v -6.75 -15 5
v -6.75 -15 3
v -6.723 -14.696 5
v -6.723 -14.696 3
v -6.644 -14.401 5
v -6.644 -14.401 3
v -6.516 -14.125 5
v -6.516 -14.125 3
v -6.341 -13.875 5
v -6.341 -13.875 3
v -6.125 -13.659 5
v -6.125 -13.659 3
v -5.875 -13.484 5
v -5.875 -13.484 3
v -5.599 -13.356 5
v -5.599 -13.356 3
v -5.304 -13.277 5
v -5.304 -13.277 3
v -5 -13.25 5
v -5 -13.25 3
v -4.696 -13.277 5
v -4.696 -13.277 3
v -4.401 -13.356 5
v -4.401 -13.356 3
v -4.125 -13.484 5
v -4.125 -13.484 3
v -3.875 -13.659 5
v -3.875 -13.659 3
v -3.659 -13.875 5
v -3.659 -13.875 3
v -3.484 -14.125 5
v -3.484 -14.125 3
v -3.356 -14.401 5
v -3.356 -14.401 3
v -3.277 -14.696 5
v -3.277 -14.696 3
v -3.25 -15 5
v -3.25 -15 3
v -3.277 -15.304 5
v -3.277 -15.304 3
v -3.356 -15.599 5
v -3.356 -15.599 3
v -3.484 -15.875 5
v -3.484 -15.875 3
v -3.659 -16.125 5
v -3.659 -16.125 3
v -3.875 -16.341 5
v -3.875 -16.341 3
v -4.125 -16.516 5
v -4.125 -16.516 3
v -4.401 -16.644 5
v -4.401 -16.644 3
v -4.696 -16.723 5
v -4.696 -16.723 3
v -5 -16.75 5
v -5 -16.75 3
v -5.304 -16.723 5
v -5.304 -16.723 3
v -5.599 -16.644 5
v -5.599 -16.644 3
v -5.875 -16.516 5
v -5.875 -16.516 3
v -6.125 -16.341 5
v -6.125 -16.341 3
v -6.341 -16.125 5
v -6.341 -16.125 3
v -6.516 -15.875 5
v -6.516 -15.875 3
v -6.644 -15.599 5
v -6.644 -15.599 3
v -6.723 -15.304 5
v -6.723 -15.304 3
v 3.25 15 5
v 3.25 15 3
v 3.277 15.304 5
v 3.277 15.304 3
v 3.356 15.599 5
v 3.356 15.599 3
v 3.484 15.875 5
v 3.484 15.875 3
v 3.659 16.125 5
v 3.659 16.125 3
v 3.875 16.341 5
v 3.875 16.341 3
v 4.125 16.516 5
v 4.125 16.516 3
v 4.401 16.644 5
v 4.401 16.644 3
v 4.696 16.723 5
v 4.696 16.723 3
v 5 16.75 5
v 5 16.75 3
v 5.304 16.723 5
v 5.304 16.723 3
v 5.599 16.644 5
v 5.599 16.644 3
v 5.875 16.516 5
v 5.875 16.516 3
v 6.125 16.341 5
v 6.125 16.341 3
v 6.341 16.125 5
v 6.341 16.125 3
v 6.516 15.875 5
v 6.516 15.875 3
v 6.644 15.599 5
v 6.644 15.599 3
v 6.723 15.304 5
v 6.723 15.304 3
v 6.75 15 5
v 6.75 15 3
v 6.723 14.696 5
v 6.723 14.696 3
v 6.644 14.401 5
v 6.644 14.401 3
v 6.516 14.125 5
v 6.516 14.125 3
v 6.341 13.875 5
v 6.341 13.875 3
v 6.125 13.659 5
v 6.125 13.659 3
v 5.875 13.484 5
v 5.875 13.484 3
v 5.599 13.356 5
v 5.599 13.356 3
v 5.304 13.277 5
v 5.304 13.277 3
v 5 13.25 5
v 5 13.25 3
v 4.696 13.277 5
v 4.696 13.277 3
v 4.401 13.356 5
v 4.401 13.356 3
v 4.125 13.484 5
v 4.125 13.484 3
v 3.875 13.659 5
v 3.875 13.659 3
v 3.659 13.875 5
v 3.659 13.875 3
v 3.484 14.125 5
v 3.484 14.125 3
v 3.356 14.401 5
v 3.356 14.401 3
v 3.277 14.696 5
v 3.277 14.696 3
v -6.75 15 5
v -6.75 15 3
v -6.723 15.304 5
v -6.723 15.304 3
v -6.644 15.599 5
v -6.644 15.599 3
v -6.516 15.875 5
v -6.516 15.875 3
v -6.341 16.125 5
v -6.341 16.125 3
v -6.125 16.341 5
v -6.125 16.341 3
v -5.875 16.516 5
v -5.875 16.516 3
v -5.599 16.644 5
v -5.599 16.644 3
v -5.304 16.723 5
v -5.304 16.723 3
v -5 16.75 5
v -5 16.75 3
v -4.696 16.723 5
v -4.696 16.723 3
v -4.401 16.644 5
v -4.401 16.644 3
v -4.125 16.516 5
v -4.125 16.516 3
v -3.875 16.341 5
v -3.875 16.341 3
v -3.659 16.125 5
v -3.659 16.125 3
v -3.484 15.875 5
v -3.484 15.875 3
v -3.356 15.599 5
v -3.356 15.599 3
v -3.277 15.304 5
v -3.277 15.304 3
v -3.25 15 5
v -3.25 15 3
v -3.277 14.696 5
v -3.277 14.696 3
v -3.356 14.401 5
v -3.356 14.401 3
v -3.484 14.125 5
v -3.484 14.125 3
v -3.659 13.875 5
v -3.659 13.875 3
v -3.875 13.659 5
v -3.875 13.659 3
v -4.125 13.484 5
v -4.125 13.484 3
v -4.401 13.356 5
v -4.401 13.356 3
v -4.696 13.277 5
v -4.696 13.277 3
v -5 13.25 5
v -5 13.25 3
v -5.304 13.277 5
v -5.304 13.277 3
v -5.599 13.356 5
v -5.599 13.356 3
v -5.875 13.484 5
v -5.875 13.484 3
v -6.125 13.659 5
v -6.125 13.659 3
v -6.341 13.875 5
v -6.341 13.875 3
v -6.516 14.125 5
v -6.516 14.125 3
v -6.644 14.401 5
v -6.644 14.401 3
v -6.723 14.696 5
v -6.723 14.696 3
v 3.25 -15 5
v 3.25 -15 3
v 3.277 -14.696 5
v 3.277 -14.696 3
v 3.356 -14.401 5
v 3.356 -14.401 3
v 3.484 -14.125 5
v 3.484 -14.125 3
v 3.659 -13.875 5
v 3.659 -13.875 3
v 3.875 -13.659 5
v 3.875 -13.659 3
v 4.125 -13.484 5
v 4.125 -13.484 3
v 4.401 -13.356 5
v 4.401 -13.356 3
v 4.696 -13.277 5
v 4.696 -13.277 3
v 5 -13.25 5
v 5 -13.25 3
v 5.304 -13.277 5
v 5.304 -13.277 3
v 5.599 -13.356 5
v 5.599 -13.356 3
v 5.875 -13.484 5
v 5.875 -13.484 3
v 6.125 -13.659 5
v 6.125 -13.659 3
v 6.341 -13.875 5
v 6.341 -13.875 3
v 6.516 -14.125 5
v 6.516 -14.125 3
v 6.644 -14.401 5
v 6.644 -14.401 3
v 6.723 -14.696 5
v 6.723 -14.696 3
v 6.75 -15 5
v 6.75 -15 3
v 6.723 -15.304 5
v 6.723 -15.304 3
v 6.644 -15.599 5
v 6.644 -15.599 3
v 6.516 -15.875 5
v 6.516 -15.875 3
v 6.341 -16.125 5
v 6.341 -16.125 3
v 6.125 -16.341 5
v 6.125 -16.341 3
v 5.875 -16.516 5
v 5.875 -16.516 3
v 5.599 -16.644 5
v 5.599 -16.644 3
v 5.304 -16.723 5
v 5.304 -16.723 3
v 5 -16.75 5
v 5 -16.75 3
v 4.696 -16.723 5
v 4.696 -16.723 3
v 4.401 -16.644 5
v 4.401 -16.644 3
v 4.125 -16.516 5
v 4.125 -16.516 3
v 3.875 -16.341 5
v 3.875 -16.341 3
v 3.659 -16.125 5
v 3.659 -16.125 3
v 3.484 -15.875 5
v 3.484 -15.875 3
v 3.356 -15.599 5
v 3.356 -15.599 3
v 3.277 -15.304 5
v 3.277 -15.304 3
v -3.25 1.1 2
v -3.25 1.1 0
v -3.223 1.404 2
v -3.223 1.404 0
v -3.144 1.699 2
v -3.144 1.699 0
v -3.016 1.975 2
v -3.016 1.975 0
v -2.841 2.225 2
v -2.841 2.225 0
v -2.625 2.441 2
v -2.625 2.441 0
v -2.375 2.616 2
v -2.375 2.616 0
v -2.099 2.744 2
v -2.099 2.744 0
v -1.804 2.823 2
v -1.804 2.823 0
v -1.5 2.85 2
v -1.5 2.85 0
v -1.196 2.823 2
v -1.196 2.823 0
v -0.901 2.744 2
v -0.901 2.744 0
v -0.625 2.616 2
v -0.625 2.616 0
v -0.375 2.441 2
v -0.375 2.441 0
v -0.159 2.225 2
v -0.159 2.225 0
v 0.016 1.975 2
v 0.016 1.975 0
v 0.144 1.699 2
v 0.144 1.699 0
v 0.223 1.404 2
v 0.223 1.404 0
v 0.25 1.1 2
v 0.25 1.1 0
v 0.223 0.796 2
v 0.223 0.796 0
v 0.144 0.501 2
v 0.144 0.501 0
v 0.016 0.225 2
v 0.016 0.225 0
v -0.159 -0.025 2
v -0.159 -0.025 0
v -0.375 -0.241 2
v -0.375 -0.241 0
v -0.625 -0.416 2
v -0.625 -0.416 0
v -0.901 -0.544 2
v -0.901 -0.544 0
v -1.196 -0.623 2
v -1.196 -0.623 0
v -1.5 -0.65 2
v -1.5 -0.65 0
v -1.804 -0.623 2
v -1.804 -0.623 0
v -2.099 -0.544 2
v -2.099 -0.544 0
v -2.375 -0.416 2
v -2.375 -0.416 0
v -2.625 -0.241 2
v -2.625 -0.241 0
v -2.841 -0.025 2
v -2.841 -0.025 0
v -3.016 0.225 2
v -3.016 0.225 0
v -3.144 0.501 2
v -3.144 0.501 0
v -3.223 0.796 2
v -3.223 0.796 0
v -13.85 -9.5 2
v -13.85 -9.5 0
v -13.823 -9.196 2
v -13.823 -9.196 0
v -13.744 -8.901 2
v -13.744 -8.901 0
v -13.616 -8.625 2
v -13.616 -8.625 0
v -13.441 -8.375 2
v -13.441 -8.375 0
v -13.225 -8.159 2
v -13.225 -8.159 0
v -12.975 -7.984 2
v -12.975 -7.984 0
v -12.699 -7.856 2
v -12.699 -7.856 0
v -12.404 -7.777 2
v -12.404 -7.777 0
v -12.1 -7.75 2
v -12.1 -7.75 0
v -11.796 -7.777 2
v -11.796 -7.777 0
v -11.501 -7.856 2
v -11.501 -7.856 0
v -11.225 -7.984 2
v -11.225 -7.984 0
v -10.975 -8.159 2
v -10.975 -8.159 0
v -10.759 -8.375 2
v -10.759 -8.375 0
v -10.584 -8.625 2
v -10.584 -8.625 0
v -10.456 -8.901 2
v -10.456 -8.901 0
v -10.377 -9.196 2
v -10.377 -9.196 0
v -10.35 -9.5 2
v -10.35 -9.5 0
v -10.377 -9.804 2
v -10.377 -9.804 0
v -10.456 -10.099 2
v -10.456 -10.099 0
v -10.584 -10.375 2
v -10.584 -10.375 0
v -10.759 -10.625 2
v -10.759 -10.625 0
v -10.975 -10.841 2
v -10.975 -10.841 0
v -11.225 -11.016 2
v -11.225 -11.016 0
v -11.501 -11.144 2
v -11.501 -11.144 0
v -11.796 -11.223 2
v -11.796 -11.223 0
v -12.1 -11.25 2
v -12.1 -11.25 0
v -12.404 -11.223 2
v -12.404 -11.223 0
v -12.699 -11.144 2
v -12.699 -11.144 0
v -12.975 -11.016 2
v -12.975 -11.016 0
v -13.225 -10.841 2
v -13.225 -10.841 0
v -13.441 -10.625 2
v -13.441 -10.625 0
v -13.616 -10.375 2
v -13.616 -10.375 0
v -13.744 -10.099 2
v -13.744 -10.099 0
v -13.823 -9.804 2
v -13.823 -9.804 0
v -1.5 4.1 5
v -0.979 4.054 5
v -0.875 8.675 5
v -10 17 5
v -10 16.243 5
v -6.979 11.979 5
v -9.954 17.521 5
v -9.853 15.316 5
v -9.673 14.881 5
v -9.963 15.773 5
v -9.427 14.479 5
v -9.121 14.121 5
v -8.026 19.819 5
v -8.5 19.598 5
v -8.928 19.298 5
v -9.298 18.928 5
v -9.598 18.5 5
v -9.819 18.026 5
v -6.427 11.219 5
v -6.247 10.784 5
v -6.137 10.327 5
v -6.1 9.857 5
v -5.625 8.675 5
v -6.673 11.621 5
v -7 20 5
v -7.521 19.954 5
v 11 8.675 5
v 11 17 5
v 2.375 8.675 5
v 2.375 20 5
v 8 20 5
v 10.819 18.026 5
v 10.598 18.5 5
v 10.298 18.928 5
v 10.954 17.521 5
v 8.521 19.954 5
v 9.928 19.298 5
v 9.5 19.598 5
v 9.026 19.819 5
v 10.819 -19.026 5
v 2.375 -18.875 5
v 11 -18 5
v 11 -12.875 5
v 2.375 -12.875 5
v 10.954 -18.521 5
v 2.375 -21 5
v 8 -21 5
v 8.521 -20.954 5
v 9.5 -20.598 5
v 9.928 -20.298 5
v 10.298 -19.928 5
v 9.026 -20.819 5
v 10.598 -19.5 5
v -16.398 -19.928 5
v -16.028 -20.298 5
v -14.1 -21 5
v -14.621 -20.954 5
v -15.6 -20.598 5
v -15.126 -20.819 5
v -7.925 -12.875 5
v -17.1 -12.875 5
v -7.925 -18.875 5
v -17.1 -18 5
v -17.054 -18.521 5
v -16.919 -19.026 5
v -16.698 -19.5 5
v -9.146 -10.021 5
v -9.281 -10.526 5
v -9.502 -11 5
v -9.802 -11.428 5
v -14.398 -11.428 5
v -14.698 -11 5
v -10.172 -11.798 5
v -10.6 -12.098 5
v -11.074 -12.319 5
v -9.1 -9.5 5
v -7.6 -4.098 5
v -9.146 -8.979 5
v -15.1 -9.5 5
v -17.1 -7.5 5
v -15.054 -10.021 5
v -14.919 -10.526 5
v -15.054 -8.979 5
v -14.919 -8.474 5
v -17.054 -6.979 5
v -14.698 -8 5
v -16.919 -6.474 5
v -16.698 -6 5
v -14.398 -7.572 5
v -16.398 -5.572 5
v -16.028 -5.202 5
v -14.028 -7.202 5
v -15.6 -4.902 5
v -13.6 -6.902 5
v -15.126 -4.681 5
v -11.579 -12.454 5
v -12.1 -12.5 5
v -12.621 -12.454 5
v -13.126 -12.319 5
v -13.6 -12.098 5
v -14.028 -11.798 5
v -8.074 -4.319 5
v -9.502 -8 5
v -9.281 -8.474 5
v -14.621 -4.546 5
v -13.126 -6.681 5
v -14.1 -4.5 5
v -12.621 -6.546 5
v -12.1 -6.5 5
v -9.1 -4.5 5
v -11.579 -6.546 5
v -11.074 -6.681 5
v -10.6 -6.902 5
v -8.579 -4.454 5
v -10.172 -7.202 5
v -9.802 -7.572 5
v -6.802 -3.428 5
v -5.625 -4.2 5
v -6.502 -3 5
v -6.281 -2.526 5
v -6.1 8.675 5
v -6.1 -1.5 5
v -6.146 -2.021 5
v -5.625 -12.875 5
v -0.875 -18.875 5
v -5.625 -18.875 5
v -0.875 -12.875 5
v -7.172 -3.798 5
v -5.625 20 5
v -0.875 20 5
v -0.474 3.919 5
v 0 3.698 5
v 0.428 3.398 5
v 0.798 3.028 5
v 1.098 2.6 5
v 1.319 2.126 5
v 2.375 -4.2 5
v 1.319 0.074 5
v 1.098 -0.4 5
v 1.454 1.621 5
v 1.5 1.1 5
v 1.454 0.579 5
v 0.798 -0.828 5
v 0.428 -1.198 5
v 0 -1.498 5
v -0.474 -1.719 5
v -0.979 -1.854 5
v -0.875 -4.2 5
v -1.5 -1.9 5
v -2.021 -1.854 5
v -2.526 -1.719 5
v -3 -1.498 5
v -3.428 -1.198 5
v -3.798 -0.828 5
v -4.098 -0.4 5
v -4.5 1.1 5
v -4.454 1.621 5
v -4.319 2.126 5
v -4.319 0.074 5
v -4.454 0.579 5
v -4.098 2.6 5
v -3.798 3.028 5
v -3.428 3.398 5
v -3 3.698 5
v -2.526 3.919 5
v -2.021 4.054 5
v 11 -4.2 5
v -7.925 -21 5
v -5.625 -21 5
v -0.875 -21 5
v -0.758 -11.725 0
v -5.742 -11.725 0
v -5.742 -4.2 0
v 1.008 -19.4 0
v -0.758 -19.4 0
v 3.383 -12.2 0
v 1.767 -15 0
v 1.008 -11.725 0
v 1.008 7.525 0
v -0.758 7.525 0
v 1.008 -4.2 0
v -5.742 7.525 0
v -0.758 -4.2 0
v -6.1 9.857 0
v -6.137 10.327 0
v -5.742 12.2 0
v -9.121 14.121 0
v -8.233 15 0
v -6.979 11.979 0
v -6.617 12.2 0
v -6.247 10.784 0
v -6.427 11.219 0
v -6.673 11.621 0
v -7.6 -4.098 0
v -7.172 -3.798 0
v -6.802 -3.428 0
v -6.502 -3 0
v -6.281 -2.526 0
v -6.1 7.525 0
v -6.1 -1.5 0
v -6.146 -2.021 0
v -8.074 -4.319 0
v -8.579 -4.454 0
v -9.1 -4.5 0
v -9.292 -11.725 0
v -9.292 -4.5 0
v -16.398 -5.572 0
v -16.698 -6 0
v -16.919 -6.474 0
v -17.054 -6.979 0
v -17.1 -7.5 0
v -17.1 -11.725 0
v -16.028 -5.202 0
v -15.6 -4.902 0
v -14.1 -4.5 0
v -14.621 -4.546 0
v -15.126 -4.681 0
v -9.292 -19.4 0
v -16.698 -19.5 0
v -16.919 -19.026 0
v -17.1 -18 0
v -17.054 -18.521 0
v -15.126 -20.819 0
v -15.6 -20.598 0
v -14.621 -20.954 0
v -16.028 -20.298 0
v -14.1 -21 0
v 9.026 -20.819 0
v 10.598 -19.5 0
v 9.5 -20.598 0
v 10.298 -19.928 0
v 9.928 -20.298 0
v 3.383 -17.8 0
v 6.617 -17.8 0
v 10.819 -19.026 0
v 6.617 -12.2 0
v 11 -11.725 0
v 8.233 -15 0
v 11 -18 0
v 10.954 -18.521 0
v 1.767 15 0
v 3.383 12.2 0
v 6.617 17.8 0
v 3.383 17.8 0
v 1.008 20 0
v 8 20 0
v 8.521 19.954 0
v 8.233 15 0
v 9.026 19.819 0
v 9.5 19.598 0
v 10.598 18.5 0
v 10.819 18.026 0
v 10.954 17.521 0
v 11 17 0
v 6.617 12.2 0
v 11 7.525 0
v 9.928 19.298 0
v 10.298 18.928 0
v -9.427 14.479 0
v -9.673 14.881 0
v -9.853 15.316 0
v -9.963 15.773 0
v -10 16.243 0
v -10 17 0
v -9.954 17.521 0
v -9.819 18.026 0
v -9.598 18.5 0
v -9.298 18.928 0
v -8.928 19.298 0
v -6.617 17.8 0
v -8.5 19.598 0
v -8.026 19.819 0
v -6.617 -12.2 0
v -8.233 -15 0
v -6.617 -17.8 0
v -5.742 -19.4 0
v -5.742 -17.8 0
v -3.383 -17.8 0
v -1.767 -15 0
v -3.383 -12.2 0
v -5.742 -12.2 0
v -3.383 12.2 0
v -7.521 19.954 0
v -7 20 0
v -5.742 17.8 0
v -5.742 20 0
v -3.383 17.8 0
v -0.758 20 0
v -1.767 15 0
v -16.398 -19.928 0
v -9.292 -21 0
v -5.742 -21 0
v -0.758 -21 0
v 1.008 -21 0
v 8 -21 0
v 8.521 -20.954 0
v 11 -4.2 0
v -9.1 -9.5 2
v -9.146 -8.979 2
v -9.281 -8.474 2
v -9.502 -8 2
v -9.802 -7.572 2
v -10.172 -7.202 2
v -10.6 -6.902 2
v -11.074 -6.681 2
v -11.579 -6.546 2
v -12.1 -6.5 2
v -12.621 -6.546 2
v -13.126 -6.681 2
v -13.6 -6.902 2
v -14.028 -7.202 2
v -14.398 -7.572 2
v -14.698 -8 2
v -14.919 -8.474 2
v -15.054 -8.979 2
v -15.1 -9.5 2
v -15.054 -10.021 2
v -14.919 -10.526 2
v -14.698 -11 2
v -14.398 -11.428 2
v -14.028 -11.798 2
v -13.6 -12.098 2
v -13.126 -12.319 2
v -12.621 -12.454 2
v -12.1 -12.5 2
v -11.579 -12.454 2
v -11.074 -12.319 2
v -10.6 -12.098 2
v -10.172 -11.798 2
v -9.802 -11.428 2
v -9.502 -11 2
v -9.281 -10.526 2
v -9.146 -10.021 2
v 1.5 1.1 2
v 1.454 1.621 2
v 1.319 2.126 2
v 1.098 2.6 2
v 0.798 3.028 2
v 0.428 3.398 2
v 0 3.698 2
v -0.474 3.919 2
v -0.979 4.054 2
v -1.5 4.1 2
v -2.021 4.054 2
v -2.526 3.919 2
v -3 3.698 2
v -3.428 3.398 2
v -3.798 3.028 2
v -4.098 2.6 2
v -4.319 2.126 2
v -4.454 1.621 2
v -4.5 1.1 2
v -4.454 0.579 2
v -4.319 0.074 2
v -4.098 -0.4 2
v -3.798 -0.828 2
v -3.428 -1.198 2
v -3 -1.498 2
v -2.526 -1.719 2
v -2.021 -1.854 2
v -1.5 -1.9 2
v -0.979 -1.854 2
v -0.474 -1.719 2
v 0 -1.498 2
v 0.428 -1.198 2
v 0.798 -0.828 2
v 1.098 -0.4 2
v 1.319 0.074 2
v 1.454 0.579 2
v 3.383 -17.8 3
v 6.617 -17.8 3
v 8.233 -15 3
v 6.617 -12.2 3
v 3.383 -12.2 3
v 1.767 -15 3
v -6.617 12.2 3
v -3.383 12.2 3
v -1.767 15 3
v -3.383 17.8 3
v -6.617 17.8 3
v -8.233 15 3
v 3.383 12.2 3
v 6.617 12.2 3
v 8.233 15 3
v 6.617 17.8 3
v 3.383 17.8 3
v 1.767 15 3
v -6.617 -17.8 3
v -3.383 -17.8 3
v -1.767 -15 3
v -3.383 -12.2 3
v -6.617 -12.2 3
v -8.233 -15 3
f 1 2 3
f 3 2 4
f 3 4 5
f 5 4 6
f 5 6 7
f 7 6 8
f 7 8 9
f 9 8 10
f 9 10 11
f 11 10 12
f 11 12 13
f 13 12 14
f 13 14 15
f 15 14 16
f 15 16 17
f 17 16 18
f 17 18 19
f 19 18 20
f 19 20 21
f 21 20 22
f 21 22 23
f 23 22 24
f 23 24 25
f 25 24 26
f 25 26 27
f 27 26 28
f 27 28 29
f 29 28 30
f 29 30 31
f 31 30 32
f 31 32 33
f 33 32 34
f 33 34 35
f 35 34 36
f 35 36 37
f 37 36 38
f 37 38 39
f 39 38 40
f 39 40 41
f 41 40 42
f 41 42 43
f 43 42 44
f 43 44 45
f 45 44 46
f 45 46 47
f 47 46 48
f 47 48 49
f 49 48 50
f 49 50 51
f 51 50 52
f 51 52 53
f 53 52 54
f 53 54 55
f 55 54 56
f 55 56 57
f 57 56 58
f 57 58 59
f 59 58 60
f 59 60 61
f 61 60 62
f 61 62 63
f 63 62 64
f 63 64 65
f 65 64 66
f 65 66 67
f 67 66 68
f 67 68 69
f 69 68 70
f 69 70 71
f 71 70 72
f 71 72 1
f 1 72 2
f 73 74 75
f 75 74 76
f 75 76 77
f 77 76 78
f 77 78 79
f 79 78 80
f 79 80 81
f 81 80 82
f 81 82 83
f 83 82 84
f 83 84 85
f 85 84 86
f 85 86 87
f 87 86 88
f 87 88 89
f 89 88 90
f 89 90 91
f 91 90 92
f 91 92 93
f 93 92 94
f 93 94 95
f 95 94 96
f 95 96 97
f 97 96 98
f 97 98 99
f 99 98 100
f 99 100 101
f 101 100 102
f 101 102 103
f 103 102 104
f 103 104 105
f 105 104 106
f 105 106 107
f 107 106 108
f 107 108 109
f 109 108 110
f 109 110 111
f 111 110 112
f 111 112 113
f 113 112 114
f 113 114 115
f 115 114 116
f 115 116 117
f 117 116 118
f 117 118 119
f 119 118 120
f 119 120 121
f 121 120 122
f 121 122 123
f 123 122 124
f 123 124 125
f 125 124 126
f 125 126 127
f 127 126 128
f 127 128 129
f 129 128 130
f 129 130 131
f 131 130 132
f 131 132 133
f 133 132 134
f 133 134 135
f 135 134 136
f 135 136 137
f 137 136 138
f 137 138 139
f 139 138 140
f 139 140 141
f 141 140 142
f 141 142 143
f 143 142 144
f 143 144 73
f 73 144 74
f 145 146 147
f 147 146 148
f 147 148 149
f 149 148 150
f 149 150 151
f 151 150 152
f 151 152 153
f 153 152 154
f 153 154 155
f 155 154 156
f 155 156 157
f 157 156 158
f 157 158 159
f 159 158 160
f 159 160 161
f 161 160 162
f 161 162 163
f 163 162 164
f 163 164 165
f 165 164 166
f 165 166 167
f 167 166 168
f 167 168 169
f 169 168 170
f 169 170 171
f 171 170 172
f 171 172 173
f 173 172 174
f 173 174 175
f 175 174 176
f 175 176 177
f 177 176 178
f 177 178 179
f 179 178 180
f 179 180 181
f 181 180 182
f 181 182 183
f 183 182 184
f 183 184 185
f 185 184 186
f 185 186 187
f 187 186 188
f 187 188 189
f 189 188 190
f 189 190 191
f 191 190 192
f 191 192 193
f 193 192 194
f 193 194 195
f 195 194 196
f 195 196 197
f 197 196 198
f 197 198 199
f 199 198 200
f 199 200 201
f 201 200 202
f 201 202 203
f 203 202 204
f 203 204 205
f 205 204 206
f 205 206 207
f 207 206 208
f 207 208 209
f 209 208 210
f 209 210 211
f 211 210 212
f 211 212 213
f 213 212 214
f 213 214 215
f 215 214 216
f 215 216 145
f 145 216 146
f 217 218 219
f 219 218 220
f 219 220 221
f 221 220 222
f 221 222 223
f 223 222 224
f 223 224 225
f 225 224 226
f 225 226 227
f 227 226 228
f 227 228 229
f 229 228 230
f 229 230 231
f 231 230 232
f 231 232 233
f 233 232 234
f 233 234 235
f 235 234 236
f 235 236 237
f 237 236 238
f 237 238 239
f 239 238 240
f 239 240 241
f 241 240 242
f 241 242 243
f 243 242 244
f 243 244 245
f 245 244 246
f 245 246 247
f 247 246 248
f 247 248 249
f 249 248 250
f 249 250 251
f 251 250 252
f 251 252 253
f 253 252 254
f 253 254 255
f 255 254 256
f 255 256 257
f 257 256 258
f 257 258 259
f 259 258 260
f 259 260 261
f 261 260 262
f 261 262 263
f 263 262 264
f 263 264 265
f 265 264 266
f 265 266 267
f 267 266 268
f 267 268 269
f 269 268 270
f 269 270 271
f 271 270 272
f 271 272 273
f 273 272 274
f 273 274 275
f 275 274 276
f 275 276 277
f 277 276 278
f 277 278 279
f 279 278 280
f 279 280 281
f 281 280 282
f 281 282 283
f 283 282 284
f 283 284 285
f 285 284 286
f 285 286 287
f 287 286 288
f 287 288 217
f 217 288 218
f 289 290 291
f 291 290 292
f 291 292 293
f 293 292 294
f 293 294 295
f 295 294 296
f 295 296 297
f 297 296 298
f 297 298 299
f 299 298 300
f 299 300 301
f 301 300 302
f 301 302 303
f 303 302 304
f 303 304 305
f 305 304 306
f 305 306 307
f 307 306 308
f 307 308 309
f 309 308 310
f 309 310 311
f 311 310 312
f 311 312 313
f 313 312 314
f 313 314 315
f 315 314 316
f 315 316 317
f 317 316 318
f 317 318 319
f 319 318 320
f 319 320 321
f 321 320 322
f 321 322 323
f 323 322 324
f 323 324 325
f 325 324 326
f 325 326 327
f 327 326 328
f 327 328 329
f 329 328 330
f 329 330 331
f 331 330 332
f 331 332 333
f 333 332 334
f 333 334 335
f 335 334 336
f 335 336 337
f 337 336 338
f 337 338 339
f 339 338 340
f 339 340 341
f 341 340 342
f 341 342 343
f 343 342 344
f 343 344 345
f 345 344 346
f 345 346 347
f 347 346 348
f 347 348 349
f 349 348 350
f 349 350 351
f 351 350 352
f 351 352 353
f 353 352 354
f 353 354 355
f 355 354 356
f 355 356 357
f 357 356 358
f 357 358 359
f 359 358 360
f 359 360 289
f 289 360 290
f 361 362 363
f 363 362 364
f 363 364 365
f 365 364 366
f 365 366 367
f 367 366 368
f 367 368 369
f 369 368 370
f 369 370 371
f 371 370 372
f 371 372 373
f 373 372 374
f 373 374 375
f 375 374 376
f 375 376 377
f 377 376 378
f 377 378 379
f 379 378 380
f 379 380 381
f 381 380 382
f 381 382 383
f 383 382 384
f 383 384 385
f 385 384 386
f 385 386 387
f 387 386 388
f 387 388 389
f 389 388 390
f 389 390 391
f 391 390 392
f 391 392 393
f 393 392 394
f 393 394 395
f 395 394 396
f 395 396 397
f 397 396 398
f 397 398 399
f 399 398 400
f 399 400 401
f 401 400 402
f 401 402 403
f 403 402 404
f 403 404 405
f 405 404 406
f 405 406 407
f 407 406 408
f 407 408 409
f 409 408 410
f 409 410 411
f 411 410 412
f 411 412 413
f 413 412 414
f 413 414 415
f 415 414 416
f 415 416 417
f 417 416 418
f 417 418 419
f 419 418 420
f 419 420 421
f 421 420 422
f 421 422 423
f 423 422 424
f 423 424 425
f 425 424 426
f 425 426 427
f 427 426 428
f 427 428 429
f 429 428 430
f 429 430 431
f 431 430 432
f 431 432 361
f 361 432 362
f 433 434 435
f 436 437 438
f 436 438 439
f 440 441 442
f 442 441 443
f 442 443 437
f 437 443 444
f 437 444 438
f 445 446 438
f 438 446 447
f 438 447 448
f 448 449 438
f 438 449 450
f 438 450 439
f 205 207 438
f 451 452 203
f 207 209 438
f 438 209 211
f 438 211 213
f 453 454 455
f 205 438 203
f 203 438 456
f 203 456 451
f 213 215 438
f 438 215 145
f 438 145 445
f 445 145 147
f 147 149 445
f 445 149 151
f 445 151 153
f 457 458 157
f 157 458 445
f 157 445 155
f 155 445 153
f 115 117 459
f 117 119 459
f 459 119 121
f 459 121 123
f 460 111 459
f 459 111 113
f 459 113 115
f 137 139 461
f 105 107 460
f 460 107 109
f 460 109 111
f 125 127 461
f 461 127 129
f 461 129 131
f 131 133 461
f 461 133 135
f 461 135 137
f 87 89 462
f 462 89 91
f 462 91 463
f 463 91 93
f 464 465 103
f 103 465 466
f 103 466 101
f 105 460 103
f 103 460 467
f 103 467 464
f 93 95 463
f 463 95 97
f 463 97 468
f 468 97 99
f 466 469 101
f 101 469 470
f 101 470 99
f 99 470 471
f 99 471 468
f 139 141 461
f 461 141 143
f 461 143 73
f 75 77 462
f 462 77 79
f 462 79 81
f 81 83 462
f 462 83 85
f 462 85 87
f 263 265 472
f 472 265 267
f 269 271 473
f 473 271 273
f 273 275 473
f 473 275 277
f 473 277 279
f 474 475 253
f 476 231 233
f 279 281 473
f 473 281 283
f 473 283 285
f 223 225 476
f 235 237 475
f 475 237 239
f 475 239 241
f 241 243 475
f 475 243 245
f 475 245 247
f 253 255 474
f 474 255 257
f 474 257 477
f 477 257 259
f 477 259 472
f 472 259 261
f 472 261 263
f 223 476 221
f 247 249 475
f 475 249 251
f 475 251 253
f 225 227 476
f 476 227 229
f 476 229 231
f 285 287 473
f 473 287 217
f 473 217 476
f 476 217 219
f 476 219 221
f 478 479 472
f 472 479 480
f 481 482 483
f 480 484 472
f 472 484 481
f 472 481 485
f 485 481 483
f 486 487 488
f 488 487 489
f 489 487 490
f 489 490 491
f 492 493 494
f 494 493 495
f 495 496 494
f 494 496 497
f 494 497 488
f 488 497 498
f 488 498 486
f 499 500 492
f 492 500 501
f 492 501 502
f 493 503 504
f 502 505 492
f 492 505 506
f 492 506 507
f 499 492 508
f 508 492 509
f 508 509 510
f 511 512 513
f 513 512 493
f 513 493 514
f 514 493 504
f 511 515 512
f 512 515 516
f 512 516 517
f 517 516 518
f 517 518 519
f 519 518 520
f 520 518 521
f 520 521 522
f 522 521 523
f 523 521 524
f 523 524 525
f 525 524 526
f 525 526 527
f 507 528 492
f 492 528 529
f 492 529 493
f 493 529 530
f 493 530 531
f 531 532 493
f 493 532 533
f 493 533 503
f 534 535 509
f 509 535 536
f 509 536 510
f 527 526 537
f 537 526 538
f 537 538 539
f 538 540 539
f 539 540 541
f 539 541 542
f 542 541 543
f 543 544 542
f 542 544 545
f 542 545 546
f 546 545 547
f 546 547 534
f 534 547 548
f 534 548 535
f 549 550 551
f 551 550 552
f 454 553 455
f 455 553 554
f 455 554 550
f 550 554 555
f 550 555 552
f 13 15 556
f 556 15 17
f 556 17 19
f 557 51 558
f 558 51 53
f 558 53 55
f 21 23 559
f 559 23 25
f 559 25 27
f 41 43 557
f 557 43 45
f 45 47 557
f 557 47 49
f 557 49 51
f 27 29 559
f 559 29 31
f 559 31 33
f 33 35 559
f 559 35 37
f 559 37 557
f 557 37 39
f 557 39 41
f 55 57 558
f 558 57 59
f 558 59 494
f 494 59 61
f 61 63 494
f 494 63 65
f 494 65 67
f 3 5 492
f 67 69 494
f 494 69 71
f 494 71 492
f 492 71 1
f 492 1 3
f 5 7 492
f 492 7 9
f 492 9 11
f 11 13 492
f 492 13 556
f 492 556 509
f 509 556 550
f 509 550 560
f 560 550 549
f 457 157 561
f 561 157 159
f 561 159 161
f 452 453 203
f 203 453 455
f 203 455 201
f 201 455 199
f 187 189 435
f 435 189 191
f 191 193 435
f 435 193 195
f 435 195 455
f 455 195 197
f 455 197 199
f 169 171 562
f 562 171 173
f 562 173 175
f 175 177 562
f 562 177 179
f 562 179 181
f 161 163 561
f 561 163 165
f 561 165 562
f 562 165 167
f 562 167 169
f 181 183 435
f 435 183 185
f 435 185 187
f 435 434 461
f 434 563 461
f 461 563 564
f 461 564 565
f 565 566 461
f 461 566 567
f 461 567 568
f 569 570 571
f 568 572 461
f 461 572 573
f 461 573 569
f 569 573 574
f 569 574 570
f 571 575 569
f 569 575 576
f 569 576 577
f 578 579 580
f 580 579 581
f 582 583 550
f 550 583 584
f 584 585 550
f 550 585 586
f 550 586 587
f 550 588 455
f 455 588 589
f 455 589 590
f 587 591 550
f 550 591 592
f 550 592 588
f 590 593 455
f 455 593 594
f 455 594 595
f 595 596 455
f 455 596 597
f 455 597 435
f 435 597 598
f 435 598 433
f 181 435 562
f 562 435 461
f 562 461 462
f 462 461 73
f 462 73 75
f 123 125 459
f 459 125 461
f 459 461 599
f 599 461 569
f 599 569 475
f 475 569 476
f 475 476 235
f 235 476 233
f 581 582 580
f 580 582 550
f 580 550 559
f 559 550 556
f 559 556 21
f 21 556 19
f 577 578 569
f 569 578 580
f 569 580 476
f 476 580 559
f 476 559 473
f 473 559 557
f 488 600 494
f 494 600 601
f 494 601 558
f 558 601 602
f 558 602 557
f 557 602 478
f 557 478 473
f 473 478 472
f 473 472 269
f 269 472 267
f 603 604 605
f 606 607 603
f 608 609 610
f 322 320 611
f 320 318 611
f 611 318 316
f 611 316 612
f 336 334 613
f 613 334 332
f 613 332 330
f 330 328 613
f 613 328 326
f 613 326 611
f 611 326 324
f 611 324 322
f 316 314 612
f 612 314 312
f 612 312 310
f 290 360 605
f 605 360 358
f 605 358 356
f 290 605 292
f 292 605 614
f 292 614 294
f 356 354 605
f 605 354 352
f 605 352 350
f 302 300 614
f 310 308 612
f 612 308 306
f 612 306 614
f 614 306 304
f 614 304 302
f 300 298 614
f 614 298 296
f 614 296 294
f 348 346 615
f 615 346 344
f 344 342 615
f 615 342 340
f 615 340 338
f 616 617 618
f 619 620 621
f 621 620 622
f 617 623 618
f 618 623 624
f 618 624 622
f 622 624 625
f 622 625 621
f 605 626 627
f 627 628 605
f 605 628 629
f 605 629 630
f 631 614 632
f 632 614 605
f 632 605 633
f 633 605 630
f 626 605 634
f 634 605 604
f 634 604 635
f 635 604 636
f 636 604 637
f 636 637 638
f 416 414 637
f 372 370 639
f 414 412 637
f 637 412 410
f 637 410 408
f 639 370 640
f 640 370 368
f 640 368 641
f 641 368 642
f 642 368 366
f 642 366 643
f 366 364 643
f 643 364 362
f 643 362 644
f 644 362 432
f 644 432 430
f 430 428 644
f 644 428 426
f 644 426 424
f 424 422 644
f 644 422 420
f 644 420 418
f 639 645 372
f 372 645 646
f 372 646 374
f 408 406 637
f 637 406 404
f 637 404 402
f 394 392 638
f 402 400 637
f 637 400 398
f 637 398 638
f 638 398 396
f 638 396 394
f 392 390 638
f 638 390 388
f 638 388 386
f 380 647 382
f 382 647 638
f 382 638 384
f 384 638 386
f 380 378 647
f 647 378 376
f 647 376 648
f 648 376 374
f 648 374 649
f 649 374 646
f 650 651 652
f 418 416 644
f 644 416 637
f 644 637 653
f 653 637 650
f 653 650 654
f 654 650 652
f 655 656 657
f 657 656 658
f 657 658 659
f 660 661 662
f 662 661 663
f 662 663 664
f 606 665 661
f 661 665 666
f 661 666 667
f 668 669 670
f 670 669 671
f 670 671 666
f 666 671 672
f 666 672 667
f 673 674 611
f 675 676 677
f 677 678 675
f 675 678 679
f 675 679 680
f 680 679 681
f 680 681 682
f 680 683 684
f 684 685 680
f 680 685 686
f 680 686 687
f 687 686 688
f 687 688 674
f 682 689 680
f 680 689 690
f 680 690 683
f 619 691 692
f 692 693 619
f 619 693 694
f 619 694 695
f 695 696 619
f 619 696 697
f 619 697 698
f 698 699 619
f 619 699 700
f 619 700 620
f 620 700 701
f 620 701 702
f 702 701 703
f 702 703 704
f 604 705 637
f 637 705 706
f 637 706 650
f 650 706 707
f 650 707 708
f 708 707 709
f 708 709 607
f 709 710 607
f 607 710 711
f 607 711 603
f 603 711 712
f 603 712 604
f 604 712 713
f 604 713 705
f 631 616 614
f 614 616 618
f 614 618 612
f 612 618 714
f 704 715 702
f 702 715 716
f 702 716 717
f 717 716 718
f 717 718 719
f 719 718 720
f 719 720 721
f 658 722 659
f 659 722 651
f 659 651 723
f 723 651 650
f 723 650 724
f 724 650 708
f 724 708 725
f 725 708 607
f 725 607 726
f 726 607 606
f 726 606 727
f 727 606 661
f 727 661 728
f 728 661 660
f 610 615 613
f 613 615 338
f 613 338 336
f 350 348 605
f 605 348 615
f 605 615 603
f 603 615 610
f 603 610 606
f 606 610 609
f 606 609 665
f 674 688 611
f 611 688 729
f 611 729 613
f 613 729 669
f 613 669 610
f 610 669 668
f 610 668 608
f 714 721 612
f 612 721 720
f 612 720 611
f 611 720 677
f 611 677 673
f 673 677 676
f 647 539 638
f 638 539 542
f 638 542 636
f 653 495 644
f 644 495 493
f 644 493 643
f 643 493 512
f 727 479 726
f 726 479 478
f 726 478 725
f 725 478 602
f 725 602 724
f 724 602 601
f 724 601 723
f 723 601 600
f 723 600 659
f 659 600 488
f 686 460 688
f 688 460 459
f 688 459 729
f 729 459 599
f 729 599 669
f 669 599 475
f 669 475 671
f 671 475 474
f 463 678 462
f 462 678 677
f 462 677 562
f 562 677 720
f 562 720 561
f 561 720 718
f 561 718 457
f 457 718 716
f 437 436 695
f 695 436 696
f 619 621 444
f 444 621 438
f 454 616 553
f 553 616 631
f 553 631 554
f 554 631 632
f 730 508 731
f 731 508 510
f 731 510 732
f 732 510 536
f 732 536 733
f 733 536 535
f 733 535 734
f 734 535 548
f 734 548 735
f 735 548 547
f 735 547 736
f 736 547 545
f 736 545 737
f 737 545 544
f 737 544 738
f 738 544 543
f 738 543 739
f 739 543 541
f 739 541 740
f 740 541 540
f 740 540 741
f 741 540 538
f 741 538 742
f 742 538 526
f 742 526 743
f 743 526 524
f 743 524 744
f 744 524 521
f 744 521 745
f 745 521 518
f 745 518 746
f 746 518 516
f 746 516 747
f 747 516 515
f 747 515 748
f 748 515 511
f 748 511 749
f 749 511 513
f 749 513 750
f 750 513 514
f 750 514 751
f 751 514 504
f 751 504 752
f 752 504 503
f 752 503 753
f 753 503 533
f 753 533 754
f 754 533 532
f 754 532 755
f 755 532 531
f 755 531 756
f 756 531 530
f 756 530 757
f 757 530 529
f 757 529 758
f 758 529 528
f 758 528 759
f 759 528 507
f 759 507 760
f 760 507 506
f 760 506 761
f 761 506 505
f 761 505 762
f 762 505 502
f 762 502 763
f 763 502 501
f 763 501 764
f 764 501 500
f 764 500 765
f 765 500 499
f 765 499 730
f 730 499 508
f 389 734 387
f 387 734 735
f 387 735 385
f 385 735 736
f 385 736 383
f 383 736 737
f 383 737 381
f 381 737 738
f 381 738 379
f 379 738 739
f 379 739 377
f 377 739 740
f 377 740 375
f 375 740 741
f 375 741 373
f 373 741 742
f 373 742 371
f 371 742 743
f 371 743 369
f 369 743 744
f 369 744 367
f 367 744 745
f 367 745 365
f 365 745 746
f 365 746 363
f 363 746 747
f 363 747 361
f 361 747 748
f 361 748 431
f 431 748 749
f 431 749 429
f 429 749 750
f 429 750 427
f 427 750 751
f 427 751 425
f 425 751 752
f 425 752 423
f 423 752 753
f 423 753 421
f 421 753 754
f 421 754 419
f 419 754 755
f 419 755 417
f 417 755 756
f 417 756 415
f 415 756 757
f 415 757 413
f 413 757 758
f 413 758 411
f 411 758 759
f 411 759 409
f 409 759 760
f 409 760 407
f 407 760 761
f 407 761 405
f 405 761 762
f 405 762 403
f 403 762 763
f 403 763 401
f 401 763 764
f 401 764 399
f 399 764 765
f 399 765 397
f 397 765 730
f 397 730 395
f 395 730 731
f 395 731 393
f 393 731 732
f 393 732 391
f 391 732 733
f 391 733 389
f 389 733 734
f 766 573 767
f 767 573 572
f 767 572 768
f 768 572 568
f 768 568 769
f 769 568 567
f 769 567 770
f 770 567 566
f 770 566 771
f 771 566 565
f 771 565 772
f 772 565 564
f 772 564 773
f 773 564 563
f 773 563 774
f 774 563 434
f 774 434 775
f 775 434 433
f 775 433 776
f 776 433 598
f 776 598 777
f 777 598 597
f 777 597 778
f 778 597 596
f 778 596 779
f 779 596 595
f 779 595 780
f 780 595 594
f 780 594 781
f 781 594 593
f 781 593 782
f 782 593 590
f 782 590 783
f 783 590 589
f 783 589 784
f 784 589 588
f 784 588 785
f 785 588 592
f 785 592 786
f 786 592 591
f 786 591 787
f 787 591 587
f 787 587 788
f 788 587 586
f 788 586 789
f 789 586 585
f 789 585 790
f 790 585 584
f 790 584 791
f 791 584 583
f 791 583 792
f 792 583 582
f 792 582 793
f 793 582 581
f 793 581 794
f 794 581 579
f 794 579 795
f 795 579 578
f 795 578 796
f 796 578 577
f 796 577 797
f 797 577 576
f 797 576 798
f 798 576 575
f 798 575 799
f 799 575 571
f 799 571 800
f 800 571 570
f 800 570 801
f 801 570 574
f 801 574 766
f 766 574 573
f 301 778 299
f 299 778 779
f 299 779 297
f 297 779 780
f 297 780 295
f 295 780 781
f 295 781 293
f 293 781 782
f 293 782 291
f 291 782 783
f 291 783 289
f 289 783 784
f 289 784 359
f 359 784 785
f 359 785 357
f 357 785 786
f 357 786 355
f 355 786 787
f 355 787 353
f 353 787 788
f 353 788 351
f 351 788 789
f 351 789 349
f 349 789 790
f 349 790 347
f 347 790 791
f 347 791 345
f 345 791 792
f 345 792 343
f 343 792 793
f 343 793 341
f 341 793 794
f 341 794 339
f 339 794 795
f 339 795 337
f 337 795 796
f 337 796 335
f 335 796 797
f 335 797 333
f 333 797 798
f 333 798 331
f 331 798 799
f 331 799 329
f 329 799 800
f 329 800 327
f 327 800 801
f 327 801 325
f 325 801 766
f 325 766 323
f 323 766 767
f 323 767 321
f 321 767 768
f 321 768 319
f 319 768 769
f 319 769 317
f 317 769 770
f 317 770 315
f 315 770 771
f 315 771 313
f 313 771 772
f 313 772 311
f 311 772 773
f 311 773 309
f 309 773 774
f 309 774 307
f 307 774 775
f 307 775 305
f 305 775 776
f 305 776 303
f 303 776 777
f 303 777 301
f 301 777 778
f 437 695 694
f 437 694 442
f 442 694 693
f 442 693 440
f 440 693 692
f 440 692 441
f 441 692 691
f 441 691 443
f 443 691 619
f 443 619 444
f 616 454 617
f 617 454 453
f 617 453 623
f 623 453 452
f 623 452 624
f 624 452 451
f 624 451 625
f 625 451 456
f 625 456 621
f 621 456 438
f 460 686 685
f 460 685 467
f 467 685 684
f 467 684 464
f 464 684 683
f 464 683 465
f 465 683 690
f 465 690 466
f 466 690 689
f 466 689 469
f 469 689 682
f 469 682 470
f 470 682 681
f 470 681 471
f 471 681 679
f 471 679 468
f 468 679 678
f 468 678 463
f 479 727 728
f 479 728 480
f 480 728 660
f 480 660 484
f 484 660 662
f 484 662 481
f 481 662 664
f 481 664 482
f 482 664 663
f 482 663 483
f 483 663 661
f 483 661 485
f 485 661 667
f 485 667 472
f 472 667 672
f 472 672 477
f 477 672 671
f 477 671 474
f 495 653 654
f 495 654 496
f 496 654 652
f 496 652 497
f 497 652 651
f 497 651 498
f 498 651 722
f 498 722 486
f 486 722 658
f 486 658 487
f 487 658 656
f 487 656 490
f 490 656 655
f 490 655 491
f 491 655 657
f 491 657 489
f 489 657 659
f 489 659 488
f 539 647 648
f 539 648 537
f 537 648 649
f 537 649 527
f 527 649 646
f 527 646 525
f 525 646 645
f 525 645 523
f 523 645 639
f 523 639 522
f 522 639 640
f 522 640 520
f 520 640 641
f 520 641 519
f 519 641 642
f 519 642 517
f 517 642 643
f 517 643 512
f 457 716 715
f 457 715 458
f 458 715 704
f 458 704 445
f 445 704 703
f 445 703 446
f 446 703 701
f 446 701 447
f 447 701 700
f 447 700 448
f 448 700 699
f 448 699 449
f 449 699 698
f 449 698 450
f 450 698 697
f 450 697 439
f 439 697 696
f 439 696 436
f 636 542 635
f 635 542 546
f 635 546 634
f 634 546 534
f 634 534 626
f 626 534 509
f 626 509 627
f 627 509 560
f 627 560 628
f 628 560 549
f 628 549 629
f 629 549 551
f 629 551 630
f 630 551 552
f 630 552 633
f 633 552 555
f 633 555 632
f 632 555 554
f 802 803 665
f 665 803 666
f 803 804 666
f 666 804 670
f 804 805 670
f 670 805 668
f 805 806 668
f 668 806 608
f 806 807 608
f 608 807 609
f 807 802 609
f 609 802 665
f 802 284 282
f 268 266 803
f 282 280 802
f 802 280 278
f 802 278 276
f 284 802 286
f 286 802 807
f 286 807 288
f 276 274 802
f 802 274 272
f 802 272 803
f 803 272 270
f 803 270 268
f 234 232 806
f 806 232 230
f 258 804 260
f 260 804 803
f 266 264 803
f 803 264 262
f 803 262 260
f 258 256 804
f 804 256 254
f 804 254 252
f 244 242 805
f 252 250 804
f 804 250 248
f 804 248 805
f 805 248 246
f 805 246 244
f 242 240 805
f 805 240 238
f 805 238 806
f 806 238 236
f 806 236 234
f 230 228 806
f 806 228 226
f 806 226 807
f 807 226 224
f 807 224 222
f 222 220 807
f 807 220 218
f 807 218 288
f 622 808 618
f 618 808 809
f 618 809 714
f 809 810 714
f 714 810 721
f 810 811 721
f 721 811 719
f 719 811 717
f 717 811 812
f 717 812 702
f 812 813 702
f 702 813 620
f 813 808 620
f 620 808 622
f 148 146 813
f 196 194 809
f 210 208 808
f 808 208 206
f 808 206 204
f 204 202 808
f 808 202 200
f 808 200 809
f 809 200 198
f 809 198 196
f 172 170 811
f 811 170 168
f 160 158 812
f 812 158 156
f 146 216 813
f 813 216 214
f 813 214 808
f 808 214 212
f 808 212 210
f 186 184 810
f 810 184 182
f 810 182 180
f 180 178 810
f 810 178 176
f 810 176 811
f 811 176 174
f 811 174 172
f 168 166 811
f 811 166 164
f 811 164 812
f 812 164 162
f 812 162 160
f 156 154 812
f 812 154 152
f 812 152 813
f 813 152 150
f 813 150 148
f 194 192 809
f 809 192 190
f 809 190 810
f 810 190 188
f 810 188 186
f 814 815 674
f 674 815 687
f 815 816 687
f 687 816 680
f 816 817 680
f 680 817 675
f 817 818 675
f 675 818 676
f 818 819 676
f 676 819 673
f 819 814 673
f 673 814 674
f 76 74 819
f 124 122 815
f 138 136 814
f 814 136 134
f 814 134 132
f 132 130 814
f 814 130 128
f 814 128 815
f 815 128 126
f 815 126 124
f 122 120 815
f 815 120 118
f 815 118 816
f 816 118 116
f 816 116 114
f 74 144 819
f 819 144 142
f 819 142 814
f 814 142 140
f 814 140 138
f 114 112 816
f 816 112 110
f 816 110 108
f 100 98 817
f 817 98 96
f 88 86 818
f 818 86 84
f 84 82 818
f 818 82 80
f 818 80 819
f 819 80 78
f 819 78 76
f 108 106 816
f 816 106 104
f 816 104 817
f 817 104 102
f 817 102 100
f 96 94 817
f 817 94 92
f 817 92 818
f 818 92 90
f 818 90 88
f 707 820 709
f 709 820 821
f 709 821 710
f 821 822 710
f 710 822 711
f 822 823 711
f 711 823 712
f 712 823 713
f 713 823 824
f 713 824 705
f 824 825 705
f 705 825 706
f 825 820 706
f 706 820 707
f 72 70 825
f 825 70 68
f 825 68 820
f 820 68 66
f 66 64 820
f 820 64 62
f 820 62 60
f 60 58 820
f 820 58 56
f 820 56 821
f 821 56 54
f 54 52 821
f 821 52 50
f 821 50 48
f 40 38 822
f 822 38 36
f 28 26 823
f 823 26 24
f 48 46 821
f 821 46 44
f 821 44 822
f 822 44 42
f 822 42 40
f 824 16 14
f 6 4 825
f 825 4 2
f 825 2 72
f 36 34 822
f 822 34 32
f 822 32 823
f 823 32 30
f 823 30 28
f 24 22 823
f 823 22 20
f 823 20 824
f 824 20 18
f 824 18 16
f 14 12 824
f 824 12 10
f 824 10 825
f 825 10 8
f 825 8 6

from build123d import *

# Parameters (mm, degrees)
SKETCH2_R           = 1.75
BOSS_EXTRUDE1_DEPTH = 5
SKETCH3_R           = 3
CUT_EXTRUDE1_DEPTH  = 3
FILLET1_R           = 3
CUT_EXTRUDE2_DEPTH  = 3


with BuildPart() as part:
    # Sketch2 → Boss-Extrude1 (new body)
    with BuildSketch(Plane.XY):
        Polygon((11, -21), (11, 20), (-10, 20), (-10, 15), (-6.1, 11.1), (-6.1, -4.5), (-17.1, -4.5), (-17.1, -21), align=None)
        with Locations((-1.5, 1.1)):
            Circle(SKETCH2_R, mode=Mode.SUBTRACT)
        with Locations((-12.1, -9.5)):
            Circle(SKETCH2_R, mode=Mode.SUBTRACT)
        with Locations((-5, 15)):
            Circle(SKETCH2_R, mode=Mode.SUBTRACT)
        with Locations((-5, -15)):
            Circle(SKETCH2_R, mode=Mode.SUBTRACT)
        with Locations((5, 15)):
            Circle(SKETCH2_R, mode=Mode.SUBTRACT)
        with Locations((5, -15)):
            Circle(SKETCH2_R, mode=Mode.SUBTRACT)
    extrude(amount=BOSS_EXTRUDE1_DEPTH)

    # Sketch3 → Cut-Extrude1 (cut)
    with BuildSketch(Plane.XY.offset(5)):
        with Locations((-1.5, 1.1)):
            Circle(SKETCH3_R)
        with Locations((-12.1, -9.5)):
            Circle(SKETCH3_R)
    extrude(amount=-CUT_EXTRUDE1_DEPTH, mode=Mode.SUBTRACT)

    # Fillet1
    fillet1_edges = [part.edges().sort_by_distance(p)[0] for p in [
        (-6.1, -4.5, 2.5),
        (-6.1, 11.1, 2.5),
        (-10, 15, 2.5),
        (-10, 20, 2.5),
        (11, 20, 2.5),
        (11, -21, 2.5),
        (-17.1, -21, 2.5),
        (-17.1, -4.5, 2.5),
    ]]
    fillet(fillet1_edges, radius=FILLET1_R)

    # Sketch4 → Cut-Extrude2 (cut)
    with BuildSketch(Plane(origin=(0, 0, 0), x_dir=(-1, 0, 0), z_dir=(0, 0, -1))):
        Polygon((-3.383419246, 12.2), (-1.766838493, 15), (-3.383419246, 17.8), (-6.616580754, 17.8), (-8.233161507, 15), (-6.616580754, 12.2), align=None)
        Polygon((6.616580754, 12.2), (8.233161507, 15), (6.616580754, 17.8), (3.383419246, 17.8), (1.766838493, 15), (3.383419246, 12.2), align=None)
        Polygon((-3.383419246, -17.8), (-1.766838493, -15), (-3.383419246, -12.2), (-6.616580754, -12.2), (-8.233161507, -15), (-6.616580754, -17.8), align=None)
        Polygon((6.616580754, -17.8), (8.233161507, -15), (6.616580754, -12.2), (3.383419246, -12.2), (1.766838493, -15), (3.383419246, -17.8), align=None)
    extrude(amount=-CUT_EXTRUDE2_DEPTH, mode=Mode.SUBTRACT)


solid = part.part
